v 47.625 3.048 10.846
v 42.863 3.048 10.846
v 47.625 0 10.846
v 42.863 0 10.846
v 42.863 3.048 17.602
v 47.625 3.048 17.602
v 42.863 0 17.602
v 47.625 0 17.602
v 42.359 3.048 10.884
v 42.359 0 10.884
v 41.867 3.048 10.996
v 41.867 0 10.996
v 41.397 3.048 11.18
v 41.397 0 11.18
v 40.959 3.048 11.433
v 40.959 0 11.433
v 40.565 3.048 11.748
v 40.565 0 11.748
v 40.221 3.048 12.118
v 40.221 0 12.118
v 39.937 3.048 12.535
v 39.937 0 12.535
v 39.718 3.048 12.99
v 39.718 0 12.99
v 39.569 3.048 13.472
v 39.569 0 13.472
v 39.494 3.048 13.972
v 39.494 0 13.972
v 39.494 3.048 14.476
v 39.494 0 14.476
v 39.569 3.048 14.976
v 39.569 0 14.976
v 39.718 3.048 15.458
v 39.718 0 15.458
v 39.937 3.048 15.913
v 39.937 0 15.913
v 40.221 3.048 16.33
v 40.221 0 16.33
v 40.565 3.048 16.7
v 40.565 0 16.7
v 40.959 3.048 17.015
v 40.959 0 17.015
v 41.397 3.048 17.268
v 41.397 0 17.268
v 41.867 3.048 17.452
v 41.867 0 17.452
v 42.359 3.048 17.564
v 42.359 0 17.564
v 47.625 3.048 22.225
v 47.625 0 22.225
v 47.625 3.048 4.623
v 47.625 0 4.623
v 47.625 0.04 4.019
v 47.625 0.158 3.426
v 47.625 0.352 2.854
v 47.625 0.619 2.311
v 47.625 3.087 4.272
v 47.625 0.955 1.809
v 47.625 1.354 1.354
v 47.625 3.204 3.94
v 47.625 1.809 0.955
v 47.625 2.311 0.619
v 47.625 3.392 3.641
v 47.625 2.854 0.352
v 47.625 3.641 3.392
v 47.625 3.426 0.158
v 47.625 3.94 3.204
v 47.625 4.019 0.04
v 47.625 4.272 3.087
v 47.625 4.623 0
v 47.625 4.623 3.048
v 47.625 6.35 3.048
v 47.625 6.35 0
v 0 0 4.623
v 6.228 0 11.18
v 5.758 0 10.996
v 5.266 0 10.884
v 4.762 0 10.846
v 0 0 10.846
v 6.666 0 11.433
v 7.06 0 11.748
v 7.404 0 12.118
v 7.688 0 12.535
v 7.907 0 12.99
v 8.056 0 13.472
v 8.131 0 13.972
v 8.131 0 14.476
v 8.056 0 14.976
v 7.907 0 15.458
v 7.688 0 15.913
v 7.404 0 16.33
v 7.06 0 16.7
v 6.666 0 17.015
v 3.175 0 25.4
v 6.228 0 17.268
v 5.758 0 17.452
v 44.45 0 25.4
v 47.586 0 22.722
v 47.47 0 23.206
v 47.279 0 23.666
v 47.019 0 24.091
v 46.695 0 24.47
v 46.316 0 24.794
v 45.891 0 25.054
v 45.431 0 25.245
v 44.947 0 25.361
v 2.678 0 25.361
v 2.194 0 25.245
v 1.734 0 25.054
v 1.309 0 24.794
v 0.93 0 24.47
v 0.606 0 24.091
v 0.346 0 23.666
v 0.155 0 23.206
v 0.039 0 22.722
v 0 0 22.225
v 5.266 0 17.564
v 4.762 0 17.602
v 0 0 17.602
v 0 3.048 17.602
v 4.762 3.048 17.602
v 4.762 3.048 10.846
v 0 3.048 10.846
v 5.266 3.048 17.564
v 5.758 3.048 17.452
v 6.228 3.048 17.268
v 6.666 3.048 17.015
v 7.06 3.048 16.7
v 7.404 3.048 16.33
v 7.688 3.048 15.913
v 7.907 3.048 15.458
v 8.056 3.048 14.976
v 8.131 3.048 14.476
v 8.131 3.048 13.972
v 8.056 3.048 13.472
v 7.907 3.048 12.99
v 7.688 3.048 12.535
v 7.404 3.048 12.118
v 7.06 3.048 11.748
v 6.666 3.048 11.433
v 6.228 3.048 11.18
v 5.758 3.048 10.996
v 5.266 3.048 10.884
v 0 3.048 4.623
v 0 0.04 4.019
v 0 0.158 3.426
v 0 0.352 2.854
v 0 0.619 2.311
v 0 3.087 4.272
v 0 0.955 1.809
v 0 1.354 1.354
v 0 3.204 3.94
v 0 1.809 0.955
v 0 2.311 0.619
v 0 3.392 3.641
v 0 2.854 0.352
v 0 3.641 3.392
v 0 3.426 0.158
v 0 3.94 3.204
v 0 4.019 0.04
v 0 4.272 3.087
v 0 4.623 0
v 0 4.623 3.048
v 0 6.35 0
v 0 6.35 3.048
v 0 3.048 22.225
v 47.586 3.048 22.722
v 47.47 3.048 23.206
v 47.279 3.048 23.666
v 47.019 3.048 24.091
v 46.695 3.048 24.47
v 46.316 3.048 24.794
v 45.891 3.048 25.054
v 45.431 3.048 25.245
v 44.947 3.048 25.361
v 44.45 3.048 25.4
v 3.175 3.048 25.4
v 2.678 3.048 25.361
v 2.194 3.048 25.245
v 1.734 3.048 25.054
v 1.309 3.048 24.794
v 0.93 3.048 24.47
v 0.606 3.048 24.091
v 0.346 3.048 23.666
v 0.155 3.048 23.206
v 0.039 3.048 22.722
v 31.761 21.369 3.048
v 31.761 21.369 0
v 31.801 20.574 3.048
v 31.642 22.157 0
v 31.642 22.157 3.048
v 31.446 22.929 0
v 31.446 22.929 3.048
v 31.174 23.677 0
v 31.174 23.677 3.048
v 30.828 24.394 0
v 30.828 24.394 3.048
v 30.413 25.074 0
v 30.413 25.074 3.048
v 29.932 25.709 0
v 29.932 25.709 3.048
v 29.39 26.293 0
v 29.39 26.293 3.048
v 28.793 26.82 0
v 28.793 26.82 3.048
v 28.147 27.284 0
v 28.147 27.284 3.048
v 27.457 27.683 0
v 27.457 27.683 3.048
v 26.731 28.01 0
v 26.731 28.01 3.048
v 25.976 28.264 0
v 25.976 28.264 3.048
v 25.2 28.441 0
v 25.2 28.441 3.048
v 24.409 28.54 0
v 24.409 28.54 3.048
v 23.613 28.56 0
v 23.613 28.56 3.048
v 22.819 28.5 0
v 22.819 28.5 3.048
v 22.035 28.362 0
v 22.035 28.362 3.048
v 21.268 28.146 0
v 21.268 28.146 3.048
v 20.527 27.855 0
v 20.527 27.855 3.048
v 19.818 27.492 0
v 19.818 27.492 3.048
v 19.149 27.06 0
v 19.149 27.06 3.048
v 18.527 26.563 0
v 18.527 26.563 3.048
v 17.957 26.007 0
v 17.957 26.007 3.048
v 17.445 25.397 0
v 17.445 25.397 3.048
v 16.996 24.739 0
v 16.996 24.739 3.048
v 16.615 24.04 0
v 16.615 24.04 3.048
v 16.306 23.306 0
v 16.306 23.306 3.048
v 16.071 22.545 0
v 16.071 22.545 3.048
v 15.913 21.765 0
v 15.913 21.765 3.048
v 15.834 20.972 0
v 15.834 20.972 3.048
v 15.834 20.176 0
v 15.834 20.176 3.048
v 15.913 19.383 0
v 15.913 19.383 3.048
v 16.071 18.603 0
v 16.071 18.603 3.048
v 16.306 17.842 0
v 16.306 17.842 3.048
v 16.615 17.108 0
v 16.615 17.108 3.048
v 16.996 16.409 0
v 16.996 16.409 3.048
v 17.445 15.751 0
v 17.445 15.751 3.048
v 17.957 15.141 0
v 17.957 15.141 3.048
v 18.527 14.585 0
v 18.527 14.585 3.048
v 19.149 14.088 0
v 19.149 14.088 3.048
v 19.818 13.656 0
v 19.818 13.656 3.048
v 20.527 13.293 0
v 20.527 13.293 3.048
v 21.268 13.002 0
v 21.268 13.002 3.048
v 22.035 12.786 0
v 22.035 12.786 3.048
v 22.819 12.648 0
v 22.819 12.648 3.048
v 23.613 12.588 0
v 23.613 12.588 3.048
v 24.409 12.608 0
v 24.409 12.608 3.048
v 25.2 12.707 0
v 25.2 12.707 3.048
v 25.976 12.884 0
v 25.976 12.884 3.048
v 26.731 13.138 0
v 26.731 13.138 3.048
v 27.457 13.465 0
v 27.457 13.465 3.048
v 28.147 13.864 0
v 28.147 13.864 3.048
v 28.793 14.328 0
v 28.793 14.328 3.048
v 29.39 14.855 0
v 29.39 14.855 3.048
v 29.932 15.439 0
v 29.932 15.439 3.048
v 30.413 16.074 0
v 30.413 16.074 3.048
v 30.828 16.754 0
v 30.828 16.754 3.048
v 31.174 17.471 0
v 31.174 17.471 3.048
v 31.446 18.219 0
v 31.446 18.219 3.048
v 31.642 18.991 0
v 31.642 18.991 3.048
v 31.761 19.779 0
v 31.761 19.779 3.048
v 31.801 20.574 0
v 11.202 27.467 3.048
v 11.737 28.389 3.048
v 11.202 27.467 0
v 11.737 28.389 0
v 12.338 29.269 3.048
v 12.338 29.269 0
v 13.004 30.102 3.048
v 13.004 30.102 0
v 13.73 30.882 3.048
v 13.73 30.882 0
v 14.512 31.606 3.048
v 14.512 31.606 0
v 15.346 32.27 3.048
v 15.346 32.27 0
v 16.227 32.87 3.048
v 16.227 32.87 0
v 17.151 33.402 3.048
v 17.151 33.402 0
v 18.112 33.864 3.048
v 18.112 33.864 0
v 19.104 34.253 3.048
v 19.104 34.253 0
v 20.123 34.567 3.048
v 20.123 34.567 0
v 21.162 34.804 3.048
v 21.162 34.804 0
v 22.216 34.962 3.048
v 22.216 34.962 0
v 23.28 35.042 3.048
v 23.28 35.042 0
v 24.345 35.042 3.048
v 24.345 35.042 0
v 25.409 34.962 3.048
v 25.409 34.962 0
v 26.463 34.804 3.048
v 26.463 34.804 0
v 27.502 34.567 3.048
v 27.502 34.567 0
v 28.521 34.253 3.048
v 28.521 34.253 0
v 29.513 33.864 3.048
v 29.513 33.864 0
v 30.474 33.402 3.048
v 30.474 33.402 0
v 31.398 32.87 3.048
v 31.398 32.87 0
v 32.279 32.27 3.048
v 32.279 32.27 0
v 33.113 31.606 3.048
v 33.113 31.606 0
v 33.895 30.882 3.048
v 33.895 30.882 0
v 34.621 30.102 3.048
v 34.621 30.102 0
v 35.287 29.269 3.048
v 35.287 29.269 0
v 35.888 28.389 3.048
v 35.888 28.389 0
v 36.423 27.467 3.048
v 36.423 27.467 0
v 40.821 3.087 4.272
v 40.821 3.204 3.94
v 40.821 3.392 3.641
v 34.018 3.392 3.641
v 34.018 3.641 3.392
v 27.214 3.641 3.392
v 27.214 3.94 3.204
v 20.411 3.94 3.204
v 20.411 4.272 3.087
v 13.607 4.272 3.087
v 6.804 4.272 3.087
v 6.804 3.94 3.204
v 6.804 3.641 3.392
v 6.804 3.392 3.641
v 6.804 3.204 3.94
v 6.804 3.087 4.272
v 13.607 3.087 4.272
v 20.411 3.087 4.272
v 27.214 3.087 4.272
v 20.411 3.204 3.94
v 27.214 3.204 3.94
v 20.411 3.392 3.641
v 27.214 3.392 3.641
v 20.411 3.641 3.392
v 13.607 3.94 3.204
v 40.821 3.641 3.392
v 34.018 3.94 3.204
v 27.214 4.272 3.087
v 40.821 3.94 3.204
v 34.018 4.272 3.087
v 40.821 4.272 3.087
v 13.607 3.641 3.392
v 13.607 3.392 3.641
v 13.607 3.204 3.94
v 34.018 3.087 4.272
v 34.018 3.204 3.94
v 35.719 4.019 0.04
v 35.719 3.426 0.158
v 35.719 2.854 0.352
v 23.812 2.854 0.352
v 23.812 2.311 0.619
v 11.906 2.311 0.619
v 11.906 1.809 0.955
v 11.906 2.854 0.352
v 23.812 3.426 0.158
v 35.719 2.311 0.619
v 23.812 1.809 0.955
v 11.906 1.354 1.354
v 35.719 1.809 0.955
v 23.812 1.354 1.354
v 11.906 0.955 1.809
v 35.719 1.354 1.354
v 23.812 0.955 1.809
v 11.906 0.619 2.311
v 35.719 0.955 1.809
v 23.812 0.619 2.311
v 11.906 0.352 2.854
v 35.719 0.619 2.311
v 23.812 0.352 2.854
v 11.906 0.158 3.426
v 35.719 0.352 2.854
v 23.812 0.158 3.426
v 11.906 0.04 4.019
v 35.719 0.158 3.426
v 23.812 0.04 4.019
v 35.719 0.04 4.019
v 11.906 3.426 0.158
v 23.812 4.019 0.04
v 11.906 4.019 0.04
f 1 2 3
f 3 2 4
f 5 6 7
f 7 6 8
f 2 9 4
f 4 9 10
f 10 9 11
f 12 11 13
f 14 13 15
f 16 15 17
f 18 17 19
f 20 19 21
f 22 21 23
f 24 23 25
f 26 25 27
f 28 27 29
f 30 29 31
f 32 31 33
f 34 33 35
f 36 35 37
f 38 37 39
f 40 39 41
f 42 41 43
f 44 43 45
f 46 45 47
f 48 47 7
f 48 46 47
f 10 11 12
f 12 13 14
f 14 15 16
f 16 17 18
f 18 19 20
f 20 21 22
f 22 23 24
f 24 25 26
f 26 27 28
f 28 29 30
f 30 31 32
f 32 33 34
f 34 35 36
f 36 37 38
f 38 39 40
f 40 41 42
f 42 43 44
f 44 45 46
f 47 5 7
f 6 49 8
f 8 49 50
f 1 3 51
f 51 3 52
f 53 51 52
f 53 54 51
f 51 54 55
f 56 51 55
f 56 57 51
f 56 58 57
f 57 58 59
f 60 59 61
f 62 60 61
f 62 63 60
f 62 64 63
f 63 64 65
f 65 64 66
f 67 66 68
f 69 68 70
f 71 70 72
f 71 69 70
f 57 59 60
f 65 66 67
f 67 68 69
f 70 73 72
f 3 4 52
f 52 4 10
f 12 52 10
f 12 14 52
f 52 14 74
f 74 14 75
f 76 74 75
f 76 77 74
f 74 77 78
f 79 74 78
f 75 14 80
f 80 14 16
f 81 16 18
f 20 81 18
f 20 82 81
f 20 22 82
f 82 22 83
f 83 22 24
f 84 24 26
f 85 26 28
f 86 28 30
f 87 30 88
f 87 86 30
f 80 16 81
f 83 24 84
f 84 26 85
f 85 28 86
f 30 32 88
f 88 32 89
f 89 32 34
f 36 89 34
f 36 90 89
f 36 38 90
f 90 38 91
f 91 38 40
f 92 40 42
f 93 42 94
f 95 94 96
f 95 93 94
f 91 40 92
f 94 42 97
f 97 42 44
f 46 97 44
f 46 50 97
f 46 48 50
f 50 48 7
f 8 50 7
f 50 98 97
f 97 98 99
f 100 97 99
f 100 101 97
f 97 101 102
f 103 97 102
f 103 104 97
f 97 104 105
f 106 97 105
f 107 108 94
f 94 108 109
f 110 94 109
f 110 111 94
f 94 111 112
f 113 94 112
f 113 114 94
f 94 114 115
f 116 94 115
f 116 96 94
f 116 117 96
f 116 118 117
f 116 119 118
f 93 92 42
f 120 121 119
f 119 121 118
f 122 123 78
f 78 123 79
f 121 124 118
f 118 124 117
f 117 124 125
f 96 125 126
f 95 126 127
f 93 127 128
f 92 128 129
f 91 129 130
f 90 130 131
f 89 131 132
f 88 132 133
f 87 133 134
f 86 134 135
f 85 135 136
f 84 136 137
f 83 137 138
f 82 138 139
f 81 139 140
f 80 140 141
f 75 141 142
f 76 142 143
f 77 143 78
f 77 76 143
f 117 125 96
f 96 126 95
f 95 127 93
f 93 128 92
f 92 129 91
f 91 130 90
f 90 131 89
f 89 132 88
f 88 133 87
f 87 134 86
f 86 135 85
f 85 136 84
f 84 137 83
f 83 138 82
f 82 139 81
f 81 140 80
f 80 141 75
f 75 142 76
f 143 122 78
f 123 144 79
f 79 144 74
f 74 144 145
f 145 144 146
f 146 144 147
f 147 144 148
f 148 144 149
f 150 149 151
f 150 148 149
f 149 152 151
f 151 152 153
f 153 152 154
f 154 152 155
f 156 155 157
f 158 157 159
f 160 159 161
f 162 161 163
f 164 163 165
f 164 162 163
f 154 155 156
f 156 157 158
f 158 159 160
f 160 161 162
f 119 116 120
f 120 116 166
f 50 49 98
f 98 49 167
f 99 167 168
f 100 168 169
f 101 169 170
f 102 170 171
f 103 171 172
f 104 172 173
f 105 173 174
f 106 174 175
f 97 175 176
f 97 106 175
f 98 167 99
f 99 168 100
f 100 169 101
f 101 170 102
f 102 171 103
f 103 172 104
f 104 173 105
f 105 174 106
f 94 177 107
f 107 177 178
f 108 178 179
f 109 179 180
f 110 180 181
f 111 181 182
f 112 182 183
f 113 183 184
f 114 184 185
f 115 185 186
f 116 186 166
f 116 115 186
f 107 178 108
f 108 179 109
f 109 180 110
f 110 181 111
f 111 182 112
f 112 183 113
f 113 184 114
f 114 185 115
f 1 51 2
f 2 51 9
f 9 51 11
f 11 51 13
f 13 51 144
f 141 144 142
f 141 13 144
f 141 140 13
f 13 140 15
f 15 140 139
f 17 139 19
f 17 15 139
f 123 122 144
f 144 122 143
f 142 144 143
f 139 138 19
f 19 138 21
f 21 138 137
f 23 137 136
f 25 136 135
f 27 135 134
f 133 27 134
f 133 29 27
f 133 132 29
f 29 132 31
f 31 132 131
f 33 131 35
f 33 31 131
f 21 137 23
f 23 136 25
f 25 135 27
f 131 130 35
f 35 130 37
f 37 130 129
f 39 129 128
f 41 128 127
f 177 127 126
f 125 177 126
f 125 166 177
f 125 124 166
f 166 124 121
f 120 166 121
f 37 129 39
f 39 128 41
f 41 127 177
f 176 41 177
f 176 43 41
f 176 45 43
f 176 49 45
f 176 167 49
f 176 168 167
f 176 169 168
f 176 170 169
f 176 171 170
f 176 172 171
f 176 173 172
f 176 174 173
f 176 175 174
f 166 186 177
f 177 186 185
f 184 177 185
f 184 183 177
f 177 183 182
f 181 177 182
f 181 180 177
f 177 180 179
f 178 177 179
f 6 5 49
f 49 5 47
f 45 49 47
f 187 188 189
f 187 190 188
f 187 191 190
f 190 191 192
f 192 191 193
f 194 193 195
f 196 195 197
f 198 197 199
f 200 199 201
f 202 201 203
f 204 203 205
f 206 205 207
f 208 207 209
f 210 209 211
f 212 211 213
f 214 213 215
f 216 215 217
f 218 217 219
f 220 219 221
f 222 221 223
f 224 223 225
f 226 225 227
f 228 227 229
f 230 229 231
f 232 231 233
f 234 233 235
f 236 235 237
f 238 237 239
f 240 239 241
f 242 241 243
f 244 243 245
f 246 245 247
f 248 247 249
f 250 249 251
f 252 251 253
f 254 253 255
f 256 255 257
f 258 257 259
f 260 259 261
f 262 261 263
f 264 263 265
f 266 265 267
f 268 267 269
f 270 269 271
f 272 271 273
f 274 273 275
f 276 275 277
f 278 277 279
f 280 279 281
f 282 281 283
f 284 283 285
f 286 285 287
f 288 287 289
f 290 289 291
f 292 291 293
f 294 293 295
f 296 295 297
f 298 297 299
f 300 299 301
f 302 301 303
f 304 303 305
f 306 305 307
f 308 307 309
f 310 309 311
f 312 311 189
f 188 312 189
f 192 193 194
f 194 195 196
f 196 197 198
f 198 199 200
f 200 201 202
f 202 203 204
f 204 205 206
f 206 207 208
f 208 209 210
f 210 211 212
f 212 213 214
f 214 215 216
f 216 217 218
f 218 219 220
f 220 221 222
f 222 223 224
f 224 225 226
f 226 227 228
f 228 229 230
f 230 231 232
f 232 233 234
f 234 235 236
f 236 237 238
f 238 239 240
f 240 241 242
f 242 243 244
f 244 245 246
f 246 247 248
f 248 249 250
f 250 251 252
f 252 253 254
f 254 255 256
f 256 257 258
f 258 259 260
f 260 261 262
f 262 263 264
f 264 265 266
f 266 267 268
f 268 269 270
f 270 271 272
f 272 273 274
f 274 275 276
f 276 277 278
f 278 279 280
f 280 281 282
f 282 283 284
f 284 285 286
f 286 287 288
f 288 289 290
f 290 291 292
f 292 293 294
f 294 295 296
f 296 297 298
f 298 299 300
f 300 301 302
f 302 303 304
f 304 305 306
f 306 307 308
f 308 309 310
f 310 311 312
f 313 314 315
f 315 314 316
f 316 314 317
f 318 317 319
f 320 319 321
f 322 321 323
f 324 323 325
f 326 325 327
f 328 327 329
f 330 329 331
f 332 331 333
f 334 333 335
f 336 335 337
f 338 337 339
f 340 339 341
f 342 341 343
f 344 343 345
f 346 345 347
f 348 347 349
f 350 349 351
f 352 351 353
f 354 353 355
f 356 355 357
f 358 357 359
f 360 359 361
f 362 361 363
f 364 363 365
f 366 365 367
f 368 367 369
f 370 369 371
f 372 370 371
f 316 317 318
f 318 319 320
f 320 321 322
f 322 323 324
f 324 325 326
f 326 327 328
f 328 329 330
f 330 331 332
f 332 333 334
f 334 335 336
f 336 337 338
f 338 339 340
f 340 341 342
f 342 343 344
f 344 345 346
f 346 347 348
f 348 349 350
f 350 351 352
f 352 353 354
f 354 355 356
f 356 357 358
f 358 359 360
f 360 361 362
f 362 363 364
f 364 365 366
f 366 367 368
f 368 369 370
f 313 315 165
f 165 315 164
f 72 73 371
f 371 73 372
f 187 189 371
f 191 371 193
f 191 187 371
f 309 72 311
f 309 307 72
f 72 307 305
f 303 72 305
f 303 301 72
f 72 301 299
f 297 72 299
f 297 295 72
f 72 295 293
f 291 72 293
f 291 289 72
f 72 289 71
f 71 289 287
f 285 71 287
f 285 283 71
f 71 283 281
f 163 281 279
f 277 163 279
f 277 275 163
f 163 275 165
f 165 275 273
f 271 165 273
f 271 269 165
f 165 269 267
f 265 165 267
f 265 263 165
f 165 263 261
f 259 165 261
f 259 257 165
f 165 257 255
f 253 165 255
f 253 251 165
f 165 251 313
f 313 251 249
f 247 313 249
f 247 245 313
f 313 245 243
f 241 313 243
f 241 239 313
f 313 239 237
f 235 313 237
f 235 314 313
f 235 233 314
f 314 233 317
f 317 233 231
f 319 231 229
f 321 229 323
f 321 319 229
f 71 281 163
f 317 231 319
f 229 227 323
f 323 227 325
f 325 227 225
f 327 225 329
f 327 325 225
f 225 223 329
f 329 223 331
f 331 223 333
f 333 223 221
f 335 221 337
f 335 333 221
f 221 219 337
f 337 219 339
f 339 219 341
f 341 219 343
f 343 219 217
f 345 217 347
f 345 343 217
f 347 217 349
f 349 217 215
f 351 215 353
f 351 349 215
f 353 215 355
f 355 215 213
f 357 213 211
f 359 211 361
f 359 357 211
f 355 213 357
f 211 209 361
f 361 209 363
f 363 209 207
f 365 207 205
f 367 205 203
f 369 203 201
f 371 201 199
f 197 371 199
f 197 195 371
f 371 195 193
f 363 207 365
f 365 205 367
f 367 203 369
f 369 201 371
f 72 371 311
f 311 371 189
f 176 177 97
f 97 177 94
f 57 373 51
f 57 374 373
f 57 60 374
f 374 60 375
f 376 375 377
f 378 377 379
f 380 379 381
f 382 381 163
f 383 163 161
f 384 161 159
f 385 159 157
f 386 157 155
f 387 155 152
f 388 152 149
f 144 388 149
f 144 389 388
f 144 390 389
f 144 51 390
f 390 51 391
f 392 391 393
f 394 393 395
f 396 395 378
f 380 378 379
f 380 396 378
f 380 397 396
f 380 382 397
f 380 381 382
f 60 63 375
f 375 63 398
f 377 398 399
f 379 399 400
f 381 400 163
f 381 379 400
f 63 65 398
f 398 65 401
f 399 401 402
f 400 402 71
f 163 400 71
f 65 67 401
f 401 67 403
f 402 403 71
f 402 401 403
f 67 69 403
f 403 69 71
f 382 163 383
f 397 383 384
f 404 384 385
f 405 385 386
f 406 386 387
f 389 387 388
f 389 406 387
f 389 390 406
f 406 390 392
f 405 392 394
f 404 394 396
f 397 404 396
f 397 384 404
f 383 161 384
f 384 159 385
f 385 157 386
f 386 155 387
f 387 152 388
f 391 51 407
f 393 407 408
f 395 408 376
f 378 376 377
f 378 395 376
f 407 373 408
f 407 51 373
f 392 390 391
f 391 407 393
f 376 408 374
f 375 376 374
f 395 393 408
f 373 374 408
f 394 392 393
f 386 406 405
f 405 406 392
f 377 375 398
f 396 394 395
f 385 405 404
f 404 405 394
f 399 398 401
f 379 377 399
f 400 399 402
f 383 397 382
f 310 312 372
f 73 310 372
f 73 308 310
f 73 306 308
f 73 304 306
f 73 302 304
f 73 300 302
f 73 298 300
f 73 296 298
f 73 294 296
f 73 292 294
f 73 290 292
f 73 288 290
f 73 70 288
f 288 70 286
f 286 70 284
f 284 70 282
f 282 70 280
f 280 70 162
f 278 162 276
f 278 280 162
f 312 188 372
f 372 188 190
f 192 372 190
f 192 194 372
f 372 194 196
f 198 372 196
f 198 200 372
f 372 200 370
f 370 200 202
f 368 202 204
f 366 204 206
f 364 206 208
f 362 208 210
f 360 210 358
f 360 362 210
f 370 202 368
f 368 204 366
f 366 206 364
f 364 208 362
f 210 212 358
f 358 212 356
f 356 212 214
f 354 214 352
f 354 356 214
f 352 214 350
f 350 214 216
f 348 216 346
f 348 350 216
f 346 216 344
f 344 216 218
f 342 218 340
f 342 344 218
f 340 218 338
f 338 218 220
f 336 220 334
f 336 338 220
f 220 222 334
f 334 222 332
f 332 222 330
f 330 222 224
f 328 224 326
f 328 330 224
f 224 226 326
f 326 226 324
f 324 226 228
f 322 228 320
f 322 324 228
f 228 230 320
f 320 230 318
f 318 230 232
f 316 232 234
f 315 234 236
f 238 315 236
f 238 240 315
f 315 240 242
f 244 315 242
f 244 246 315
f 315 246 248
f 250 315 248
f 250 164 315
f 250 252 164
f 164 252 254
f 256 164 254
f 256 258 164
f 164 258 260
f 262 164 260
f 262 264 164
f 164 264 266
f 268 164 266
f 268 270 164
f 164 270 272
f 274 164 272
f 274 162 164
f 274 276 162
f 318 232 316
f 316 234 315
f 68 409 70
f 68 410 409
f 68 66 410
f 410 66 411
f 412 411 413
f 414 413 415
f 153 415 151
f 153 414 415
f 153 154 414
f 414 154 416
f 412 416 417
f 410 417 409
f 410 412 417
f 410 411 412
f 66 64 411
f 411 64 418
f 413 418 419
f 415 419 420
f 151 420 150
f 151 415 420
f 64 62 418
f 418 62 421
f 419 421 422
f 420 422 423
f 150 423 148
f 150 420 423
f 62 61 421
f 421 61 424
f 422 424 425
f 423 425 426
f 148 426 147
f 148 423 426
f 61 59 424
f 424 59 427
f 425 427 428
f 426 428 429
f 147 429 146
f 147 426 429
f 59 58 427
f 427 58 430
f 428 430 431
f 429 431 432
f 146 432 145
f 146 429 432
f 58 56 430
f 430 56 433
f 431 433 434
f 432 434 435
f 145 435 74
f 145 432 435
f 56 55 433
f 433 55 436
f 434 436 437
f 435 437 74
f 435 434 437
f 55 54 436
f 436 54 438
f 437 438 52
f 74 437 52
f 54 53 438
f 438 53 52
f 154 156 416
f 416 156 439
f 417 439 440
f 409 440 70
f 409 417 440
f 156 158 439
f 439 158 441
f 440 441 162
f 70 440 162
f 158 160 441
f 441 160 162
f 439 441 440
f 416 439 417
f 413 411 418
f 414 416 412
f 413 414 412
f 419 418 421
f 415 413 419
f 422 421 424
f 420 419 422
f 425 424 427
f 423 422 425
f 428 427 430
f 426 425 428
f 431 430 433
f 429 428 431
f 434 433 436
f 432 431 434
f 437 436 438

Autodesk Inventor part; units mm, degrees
sketch "Sketch_1" plane through (0, 0, 0) normal (1, 0, 0) x (0, 1, 0)
  line L0 (0, 25.4) -> (0, 4.6228)
  arc A0 (0, 4.6228) -> (4.6228, 0) centre (4.6228, 4.6228) ccw
  line L1 (4.6228, 0) -> (42.0624, 0)
  line L2 (42.0624, 0) -> (42.0624, 3.048)
  line L3 (42.0624, 3.048) -> (4.6228, 3.048)
  arc A1 (3.048, 4.6228) -> (4.6228, 3.048) centre (4.6228, 4.6228) ccw
  line L4 (3.048, 4.6228) -> (3.048, 25.4)
  line L5 (3.048, 25.4) -> (0, 25.4)
extrude "Extrusion1" add sketch "Sketch_1" along normal blind 47.625
sketch "Sketch_2" plane through (0, 0, 0) normal (0, 0, 1) x (1, 0, 0)
  line L0 (-9.525, -3.5052) -> (57.15, -3.5052)
  line L1 (57.15, -3.5052) -> (57.15, 56.0832)
  line L2 (57.15, 56.0832) -> (-9.525, 56.0832)
  line L3 (-9.525, 56.0832) -> (-9.525, -3.5052)
  line L4 (-3.3686, 0) -> (50.9936, 0)
  line L5 (50.9936, 0) -> (36.4228, 27.4668)
  arc A0 (36.4228, 27.4668) -> (11.2022, 27.4668) centre (23.8125, 20.7772) ccw
  line L6 (11.2022, 27.4668) -> (-3.3686, 0)
extrude "Extrusion2" cut sketch "Sketch_2" along normal blind 4.572
sketch "Sketch_3" plane through (0, 0, 0) normal (0, 0, 1) x (1, 0, 0)
  circle A0 centre (23.8125, 20.574) radius 7.9883
extrude "Extrusion3" cut sketch "Sketch_3" along normal blind 4.572
sketch "Sketch_6" plane through (0, 0, 0) normal (0, 1, 0) x (-1, 0, 0)
  line L0 (23.8125, 22.225) -> (23.8125, 32.512)
  line L1 (23.8125, 32.512) -> (-3.175, 32.512)
  line L2 (-3.175, 32.512) -> (-3.175, 25.4)
  arc A0 (0, 22.225) -> (-3.175, 25.4) centre (-3.175, 22.225) ccw
  line L3 (0, 22.225) -> (23.8125, 22.225)
extrude "Extrusion4" cut sketch "Sketch_6" along normal blind 4.572
sketch "Sketch_7" plane through (0, 0, 0) normal (0, 1, 0) x (-1, 0, 0)
  line L0 (-44.45, 32.512) -> (-71.4375, 32.512)
  line L1 (-71.4375, 32.512) -> (-71.4375, 22.225)
  line L2 (-71.4375, 22.225) -> (-47.625, 22.225)
  arc A0 (-44.45, 25.4) -> (-47.625, 22.225) centre (-44.45, 22.225) ccw
  line L3 (-44.45, 25.4) -> (-44.45, 32.512)
extrude "Extrusion5" cut sketch "Sketch_7" along normal blind 4.572
sketch "Sketch_8" plane through (0, 0, 0) normal (0, 1, 0) x (-1, 0, 0)
  line L0 (4.7625, 17.6022) -> (-4.7625, 17.6022)
  arc A0 (-4.7625, 17.6022) -> (-4.7625, 10.8458) centre (-4.7625, 14.224) ccw
  line L1 (-4.7625, 10.8458) -> (4.7625, 10.8458)
  line L2 (4.7625, 10.8458) -> (4.7625, 17.6022)
extrude "Extrusion6" cut sketch "Sketch_8" along normal blind 4.572
sketch "Sketch_9" plane through (0, 0, 0) normal (0, 1, 0) x (-1, 0, 0)
  arc A0 (-42.8625, 10.8458) -> (-42.8625, 17.6022) centre (-42.8625, 14.224) ccw
  line L0 (-42.8625, 17.6022) -> (-52.3875, 17.6022)
  line L1 (-52.3875, 17.6022) -> (-52.3875, 10.8458)
  line L2 (-52.3875, 10.8458) -> (-42.8625, 10.8458)
extrude "Extrusion7" cut sketch "Sketch_9" along normal blind 4.572
ref_plane "h1_XY" through (23.8125, 0, 25.4) normal (1, 0, 0) x (0, 0, -1)
ref_plane "h1_YZ" through (23.8125, 0, 25.4) normal (0, 0, -1) x (0, 1, 0)
ref_plane "h1_ZX" through (23.8125, 0, 25.4) normal (0, 1, 0) x (1, 0, 0)
ref_plane "d1_XY" through (23.8125, 12.5857, 0) normal (1, 0, 0) x (0, 0, -1)
ref_plane "d1_YZ" through (23.8125, 12.5857, 0) normal (0, 0, -1) x (0, 1, 0)
ref_plane "d1_ZX" through (23.8125, 12.5857, 0) normal (0, 1, 0) x (1, 0, 0)
ref_plane "h2_XY" through (23.8125, 3.048, 25.4) normal (1, 0, 0) x (0, 0, -1)
ref_plane "h2_YZ" through (23.8125, 3.048, 25.4) normal (0, 0, -1) x (0, 1, 0)
ref_plane "h2_ZX" through (23.8125, 3.048, 25.4) normal (0, 1, 0) x (1, 0, 0)
ref_plane "d2_XY" through (23.8125, 28.5623, 0) normal (1, 0, 0) x (0, 0, -1)
ref_plane "d2_YZ" through (23.8125, 28.5623, 0) normal (0, 0, -1) x (0, 1, 0)
ref_plane "d2_ZX" through (23.8125, 28.5623, 0) normal (0, 1, 0) x (1, 0, 0)
ref_plane "h3_XY" through (23.8125, 20.574, 3.048) normal (1, 0, 0) x (0, 0, -1)
ref_plane "h3_YZ" through (23.8125, 20.574, 3.048) normal (0, 0, -1) x (0, 1, 0)
ref_plane "h3_ZX" through (23.8125, 20.574, 3.048) normal (0, 1, 0) x (1, 0, 0)
ref_plane "h4_XY" through (23.8125, 35.052, 3.048) normal (1, 0, 0) x (0, 0, -1)
ref_plane "h4_YZ" through (23.8125, 35.052, 3.048) normal (0, 0, -1) x (0, 1, 0)
ref_plane "h4_ZX" through (23.8125, 35.052, 3.048) normal (0, 1, 0) x (1, 0, 0)
ref_plane "h5_XY" through (47.625, 6.35, 0) normal (1, 0, 0) x (0, 0, -1)
ref_plane "h5_YZ" through (47.625, 6.35, 0) normal (0, 0, -1) x (0, 1, 0)
ref_plane "h5_ZX" through (47.625, 6.35, 0) normal (0, 1, 0) x (1, 0, 0)
ref_plane "h6_XY" through (47.625, 0, 0) normal (1, 0, 0) x (0, 0, -1)
ref_plane "h6_YZ" through (47.625, 0, 0) normal (0, 0, -1) x (0, 1, 0)
ref_plane "h6_ZX" through (47.625, 0, 0) normal (0, 1, 0) x (1, 0, 0)
ref_plane "l1_XY" through (0, 0, 0) normal (0, 1, 0) x (1, 0, 0)
ref_plane "l1_YZ" through (0, 0, 0) normal (1, 0, 0) x (0, 0, -1)
ref_plane "l1_ZX" through (0, 0, 0) normal (0, 0, -1) x (0, 1, 0)
ref_plane "l2_XY" through (47.625, 0, 0) normal (0, 1, 0) x (1, 0, 0)
ref_plane "l2_YZ" through (47.625, 0, 0) normal (1, 0, 0) x (0, 0, -1)
ref_plane "l2_ZX" through (47.625, 0, 0) normal (0, 0, -1) x (0, 1, 0)
ref_plane "l3_XY" through (0, 0, 25.4) normal (0, 1, 0) x (1, 0, 0)
ref_plane "l3_YZ" through (0, 0, 25.4) normal (1, 0, 0) x (0, 0, -1)
ref_plane "l3_ZX" through (0, 0, 25.4) normal (0, 0, -1) x (0, 1, 0)
ref_plane "l4_XY" through (0, 0, 14.224) normal (0, 1, 0) x (1, 0, 0)
ref_plane "l4_YZ" through (0, 0, 14.224) normal (1, 0, 0) x (0, 0, -1)
ref_plane "l4_ZX" through (0, 0, 14.224) normal (0, 0, -1) x (0, 1, 0)
ref_plane "l5_XY" through (4.7625, 0, 14.224) normal (0, 1, 0) x (1, 0, 0)
ref_plane "l5_YZ" through (4.7625, 0, 14.224) normal (1, 0, 0) x (0, 0, -1)
ref_plane "l5_ZX" through (4.7625, 0, 14.224) normal (0, 0, -1) x (0, 1, 0)
ref_plane "l6_XY" through (42.8625, 0, 14.224) normal (0, 1, 0) x (1, 0, 0)
ref_plane "l6_YZ" through (42.8625, 0, 14.224) normal (1, 0, 0) x (0, 0, -1)
ref_plane "l6_ZX" through (42.8625, 0, 14.224) normal (0, 0, -1) x (0, 1, 0)
ref_plane "l7_XY" through (42.8625, 0, 17.6022) normal (0, 1, 0) x (1, 0, 0)
ref_plane "l7_YZ" through (42.8625, 0, 17.6022) normal (1, 0, 0) x (0, 0, -1)
ref_plane "l7_ZX" through (42.8625, 0, 17.6022) normal (0, 0, -1) x (0, 1, 0)
ref_plane "l8_XY" through (42.8625, 0, 10.8458) normal (0, 1, 0) x (1, 0, 0)
ref_plane "l8_YZ" through (42.8625, 0, 10.8458) normal (1, 0, 0) x (0, 0, -1)
ref_plane "l8_ZX" through (42.8625, 0, 10.8458) normal (0, 0, -1) x (0, 1, 0)
ref_plane "mounting_bracket_XY" through (23.8125, 20.574, 3.048) normal (0, 0, 1) x (1, 0, 0)
ref_plane "mounting_bracket_YZ" through (23.8125, 20.574, 3.048) normal (1, 0, 0) x (0, 1, 0)
ref_plane "mounting_bracket_ZX" through (23.8125, 20.574, 3.048) normal (0, 1, 0) x (0, 0, 1)
ref_plane "mounting_bracket_1_XY" through (23.8125, 20.574, 0) normal (0, 0, 1) x (1, 0, 0)
ref_plane "mounting_bracket_1_YZ" through (23.8125, 20.574, 0) normal (1, 0, 0) x (0, 1, 0)
ref_plane "mounting_bracket_1_ZX" through (23.8125, 20.574, 0) normal (0, 1, 0) x (0, 0, 1)
properties part number "D-129"
